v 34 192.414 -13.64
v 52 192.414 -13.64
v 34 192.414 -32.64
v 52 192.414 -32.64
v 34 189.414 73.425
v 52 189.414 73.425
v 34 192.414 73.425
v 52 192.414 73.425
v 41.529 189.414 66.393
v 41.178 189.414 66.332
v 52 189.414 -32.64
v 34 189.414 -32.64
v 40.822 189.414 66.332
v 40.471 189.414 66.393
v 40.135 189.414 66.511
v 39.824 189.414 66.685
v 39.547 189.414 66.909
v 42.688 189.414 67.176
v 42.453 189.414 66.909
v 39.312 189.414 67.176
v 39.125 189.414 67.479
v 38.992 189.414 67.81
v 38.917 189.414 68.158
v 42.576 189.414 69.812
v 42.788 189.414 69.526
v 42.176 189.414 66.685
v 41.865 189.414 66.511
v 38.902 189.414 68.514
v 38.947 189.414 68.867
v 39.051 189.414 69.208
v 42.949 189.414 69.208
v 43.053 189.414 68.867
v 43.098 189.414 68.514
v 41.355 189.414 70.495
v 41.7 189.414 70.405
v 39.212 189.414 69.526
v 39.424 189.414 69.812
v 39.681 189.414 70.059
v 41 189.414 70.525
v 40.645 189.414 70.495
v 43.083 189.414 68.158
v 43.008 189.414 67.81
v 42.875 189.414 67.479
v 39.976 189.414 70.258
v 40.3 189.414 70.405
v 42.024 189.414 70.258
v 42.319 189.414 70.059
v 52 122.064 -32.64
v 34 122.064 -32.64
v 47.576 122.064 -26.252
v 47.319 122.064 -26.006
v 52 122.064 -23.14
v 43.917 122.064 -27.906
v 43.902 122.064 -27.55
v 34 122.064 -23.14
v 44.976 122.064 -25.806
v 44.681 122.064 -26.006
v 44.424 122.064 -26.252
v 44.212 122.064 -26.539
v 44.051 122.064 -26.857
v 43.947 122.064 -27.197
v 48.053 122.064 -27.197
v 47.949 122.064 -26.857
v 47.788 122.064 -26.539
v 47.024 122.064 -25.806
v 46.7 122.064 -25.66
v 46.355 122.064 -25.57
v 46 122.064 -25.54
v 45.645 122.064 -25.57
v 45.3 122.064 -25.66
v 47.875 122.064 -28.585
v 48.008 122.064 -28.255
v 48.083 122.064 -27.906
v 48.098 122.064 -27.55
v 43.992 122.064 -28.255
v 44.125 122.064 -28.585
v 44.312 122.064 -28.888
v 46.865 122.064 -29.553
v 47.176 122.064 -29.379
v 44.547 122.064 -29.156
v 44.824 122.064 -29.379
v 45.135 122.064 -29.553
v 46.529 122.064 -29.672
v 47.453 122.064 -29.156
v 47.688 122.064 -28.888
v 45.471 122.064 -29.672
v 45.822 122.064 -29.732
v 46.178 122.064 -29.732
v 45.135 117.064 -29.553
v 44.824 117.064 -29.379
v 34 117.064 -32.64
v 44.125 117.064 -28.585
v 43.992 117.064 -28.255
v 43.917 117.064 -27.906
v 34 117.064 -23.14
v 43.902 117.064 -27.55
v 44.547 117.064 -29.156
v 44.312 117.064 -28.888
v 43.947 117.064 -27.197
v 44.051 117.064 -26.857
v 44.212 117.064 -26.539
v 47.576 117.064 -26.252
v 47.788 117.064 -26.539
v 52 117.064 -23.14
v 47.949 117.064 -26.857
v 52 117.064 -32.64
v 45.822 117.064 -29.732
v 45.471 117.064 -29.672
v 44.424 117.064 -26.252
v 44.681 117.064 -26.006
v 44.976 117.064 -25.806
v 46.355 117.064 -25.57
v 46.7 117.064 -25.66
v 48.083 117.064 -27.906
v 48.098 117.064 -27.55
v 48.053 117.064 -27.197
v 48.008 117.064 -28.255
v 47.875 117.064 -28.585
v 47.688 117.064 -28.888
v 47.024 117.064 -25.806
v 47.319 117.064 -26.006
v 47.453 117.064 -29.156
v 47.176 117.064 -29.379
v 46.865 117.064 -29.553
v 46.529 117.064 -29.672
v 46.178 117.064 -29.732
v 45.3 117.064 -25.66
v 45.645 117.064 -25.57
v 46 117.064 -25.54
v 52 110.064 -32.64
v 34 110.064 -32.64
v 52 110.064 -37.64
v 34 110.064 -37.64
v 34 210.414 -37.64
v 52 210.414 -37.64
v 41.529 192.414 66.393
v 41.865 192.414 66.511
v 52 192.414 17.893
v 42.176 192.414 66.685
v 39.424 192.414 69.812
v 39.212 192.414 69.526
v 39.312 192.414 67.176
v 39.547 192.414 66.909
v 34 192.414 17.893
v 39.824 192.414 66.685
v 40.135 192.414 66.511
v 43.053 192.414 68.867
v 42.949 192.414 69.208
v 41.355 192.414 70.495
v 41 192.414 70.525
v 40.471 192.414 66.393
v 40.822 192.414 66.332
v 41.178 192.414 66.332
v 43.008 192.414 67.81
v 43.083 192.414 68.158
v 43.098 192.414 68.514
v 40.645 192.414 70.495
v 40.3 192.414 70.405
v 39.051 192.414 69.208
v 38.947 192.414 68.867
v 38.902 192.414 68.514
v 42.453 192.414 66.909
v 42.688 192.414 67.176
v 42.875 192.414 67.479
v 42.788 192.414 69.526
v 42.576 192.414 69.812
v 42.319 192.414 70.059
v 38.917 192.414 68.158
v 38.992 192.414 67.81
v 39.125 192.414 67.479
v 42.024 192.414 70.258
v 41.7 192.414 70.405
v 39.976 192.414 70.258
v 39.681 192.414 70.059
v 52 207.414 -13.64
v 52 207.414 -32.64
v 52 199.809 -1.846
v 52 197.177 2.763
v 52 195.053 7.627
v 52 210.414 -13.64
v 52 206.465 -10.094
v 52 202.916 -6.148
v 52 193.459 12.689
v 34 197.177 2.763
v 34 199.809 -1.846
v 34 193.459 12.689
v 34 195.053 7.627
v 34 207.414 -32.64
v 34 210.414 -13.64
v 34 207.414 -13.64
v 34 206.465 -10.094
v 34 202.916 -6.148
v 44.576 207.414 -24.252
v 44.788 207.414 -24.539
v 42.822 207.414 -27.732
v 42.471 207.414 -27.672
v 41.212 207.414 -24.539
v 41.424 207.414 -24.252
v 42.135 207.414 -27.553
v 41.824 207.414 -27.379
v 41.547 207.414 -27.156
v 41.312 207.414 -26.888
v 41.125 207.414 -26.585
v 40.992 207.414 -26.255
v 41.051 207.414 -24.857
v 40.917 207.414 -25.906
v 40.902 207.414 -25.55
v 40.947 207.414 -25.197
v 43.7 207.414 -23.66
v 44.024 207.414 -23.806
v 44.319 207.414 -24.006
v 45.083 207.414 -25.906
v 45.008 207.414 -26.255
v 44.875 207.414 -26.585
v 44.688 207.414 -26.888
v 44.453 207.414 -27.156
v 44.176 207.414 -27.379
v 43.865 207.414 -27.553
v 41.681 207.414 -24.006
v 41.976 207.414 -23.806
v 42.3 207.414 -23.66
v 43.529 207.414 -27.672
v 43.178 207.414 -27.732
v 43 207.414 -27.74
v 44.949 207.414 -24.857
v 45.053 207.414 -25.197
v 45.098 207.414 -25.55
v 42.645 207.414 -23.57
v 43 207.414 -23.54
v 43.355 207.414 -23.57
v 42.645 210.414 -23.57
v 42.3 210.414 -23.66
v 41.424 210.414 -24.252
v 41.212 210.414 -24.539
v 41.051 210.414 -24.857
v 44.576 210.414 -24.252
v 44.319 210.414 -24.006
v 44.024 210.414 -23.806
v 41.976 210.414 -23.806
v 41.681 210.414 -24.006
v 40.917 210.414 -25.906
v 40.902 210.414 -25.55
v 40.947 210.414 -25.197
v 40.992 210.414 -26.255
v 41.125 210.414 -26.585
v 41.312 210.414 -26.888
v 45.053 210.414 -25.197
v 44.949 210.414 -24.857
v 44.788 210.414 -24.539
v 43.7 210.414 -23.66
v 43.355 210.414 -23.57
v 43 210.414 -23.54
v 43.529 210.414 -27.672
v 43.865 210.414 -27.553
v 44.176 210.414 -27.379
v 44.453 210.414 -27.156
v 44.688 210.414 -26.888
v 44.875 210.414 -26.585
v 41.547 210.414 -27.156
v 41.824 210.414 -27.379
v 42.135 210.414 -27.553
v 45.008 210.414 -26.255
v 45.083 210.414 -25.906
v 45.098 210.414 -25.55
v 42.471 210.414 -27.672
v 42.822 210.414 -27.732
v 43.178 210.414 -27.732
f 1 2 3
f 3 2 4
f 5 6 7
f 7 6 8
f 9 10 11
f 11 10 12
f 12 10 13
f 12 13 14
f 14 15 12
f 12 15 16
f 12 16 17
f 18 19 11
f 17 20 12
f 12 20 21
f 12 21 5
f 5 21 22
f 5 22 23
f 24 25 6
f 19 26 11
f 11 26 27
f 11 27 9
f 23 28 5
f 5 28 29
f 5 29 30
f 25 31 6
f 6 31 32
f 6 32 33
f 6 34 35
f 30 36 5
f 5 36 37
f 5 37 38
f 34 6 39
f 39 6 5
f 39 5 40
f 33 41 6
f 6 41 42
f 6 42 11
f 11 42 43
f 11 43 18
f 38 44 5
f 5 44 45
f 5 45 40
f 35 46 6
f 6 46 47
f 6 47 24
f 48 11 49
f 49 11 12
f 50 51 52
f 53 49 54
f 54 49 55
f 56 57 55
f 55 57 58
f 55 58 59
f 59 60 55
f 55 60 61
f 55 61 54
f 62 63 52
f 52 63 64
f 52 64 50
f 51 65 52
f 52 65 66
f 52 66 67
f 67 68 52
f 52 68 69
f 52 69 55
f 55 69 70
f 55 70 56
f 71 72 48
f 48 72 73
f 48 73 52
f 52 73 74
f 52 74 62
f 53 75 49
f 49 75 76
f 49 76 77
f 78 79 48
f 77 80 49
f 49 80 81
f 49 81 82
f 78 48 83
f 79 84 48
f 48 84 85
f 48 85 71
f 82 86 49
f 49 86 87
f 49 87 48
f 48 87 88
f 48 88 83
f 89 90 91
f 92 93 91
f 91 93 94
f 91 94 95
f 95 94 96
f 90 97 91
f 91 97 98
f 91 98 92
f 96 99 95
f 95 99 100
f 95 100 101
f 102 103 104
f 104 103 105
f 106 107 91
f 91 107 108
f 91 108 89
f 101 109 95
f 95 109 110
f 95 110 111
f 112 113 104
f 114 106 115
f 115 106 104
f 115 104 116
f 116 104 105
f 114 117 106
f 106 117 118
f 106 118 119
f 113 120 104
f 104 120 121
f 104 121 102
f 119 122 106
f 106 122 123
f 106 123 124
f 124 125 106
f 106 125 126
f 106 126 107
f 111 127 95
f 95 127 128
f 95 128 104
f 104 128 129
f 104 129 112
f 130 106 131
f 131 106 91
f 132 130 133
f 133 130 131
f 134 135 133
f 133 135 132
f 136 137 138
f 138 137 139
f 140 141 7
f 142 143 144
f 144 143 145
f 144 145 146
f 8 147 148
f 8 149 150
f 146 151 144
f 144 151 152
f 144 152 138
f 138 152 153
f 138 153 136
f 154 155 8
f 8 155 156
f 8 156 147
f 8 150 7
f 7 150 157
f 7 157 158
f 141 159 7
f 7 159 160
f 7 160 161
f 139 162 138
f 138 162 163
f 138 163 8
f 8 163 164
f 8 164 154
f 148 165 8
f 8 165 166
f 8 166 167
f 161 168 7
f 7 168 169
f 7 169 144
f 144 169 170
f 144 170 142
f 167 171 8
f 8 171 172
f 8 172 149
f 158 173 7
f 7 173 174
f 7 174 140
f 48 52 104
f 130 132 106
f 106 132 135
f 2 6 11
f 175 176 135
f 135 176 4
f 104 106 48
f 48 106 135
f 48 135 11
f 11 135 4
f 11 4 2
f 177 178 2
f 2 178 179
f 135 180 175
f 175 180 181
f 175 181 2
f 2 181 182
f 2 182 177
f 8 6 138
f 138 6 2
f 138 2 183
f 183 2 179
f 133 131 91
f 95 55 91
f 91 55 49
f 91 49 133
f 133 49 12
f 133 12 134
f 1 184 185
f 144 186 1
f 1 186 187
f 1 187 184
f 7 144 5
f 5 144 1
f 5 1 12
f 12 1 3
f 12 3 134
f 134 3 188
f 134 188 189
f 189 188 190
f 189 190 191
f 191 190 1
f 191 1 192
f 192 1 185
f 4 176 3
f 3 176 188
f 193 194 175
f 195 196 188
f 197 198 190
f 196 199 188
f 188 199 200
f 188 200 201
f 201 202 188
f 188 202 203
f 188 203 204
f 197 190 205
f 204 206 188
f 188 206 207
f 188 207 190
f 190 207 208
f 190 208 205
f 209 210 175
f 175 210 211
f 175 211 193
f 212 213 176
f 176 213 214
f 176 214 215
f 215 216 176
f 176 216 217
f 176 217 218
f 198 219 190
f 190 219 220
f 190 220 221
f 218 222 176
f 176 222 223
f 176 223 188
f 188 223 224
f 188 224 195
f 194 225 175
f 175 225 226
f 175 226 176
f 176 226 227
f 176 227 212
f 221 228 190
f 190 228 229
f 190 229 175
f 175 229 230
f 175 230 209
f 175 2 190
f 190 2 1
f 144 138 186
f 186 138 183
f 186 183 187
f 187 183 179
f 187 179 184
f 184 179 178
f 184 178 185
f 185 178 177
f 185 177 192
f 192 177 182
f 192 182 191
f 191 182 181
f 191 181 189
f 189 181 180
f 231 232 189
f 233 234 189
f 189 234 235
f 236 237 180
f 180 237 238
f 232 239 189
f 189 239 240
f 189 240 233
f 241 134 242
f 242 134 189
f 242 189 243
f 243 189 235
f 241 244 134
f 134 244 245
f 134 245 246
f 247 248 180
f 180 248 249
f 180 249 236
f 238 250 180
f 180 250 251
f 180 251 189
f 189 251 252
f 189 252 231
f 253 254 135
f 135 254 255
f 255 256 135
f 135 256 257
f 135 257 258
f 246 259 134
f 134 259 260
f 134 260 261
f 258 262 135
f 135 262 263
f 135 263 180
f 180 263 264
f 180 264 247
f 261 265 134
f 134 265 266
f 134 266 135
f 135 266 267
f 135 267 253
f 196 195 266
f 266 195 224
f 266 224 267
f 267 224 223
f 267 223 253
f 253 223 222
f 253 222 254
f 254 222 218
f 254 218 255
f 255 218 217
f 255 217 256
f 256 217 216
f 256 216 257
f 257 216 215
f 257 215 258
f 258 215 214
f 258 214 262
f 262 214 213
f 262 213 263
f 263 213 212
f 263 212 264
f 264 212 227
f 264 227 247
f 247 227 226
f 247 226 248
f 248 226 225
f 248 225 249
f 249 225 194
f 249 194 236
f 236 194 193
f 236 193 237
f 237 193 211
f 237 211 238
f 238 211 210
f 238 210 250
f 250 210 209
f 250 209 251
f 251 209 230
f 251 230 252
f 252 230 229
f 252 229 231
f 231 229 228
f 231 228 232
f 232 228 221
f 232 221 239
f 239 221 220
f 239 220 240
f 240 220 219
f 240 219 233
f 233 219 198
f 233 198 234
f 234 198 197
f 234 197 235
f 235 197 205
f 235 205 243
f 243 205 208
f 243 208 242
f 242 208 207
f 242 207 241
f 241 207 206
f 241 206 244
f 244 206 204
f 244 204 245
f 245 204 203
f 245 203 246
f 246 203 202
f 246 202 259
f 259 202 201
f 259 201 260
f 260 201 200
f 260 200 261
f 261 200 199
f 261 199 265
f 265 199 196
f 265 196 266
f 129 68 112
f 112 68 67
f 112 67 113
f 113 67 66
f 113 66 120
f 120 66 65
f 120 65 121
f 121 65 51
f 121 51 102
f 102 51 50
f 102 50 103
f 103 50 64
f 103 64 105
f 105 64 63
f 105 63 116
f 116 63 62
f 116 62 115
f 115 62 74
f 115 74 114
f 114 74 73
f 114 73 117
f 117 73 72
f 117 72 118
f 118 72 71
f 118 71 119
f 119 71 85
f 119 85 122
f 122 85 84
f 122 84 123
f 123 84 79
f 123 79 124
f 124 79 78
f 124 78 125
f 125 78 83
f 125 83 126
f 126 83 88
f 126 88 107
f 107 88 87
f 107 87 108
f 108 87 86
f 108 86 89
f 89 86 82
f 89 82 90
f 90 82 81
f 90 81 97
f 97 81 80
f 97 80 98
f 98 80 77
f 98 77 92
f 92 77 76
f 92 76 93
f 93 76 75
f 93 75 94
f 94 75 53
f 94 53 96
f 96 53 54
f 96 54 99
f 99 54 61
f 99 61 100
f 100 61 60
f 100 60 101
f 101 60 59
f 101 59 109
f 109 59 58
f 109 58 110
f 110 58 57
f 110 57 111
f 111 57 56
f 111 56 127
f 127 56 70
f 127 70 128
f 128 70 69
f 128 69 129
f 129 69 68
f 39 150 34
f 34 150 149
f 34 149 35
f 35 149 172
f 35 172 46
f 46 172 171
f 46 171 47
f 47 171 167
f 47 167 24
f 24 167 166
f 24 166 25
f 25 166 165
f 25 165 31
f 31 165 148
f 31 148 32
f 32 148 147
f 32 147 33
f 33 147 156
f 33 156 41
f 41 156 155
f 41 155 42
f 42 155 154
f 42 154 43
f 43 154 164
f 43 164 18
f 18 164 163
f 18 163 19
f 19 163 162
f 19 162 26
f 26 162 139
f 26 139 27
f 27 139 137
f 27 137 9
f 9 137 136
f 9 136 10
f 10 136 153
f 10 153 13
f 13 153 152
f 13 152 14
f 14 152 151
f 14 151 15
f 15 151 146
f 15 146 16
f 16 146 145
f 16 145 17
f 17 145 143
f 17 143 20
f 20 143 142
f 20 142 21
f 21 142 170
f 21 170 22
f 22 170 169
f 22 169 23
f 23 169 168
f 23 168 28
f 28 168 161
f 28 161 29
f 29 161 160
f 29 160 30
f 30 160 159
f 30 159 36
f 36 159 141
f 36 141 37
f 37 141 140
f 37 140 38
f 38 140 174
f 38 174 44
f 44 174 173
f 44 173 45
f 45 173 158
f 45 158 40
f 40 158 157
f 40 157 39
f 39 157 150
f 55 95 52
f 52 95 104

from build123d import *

# Parameters (mm, degrees)
SKETCH4_W           = 106.06440689
SKETCH4_H           = 3
SKETCH4_W_2         = 10
SKETCH4_H_2         = 5
BOSS_EXTRUDE1_DEPTH = 52
SKETCH5_R           = 2.1
CUT_EXTRUDE1_DEPTH  = 52
SKETCH6_R           = 2.1
CUT_EXTRUDE2_DEPTH  = 52
SKETCH7_W           = 16
SKETCH7_H           = 82.35034403
CUT_EXTRUDE4_DEPTH  = 124
BOSS_EXTRUDE2_DEPTH = 18
SKETCH9_R           = 2.1
CUT_EXTRUDE5_DEPTH  = 6
BOSS_EXTRUDE3_DEPTH = 18
SKETCH12_R          = 2.1
CUT_EXTRUDE7_DEPTH  = 11
SKETCH13_W          = 30.758926903
SKETCH13_H          = 118.81058029
CUT_EXTRUDE8_DEPTH  = 134
SKETCH14_W          = 18
SKETCH14_H          = 2
CUT_EXTRUDE9_DEPTH  = 10
BOSS_EXTRUDE4_START = -5
SKETCH15_W          = 18
SKETCH15_H          = 2
SKETCH15_R          = 2.1
BOSS_EXTRUDE4_DEPTH = 5
SKETCH16_R          = 2.1
CUT_EXTRUDE10_DEPTH = 68
SKETCH17_R          = 2.1
BOSS_EXTRUDE5_DEPTH = 3
SKETCH18_R          = 2.1
CUT_EXTRUDE11_DEPTH = 68
SKETCH19_W          = 18
SKETCH19_H          = 0.5
CUT_EXTRUDE12_DEPTH = 68
SKETCH20_W          = 7.887405645
SKETCH20_H          = 8
BOSS_EXTRUDE6_DEPTH = 5
SKETCH21_R          = 2.1
CUT_EXTRUDE13_DEPTH = 10


with BuildPart() as part:
    # Sketch4 → Boss-Extrude1 (new body)
    with BuildSketch(Plane(origin=(0, 0, 0), x_dir=(0, 0, -1), z_dir=(1, 0, 0))):
        with Locations((-20.39261819, 190.914352888)):
            Rectangle(SKETCH4_W, SKETCH4_H)
        Polygon((32.639585255, 189.414352888), (32.639585255, 122.064008858), (32.639585255, 117.064008858), (32.639585255, 110.064008858), (37.639585255, 110.064008858), (37.639585255, 192.414352888), (32.639585255, 192.414352888), align=None)
        with Locations((27.639585255, 119.564008858)):
            Rectangle(SKETCH4_W_2, SKETCH4_H_2)
    extrude(amount=BOSS_EXTRUDE1_DEPTH)

    # Sketch5 → Cut-Extrude1 (cut)
    with BuildSketch(Plane(origin=(0, 122.064008858, 0), x_dir=(1, 0, 0), z_dir=(0, 1, 0))):
        with Locations((6, 27.049585255)):
            Circle(SKETCH5_R)
        with Locations((46, 27.639585255)):
            Circle(SKETCH5_R)
    extrude(amount=-CUT_EXTRUDE1_DEPTH, mode=Mode.SUBTRACT)

    # Sketch6 → Cut-Extrude2 (cut)
    with BuildSketch(Plane(origin=(0, 192.414352888, 0), x_dir=(1, 0, 0), z_dir=(0, 1, 0))):
        with Locations((41, -68.424821635)):
            Circle(SKETCH6_R)
        with Locations((11, -68.424821635)):
            Circle(SKETCH6_R)
    extrude(amount=-CUT_EXTRUDE2_DEPTH, mode=Mode.SUBTRACT)

    # Sketch7 → Cut-Extrude4 (cut)
    with BuildSketch(Plane(origin=(0, 0, -37.639585255), x_dir=(-1, 0, 0), z_dir=(0, 0, -1))):
        with Locations((-26, 151.239180873)):
            Rectangle(SKETCH7_W, SKETCH7_H)
    extrude(amount=-CUT_EXTRUDE4_DEPTH, mode=Mode.SUBTRACT)

    # Sketch8 → Boss-Extrude2 (add)
    with BuildSketch(Plane.ZY):
        with BuildLine():
            Line((-37.639585255, 210.414352888), (-37.639585255, 192.414352888))
            Line((-37.639585255, 192.414352888), (-32.639585255, 192.414352888))
            Line((-32.639585255, 192.414352888), (-32.639585255, 207.414352888))
            Line((-32.639585255, 207.414352888), (-13.639585255, 207.414352888))
            Line((-13.639585255, 207.414352888), (-13.639585255, 192.414352888))
            Line((-13.639585255, 192.414352888), (17.89261819, 192.414352888))
            ThreePointArc((17.89261819, 192.414352888), (0.423706042, 198.431388178), (-13.639585255, 210.414352888))
            Line((-13.639585255, 210.414352888), (-37.639585255, 210.414352888))
        make_face()
    extrude(amount=-BOSS_EXTRUDE2_DEPTH)

    # Sketch9 → Cut-Extrude5 (cut)
    with BuildSketch(Plane(origin=(0, 210.414352888, 0), x_dir=(1, 0, 0), z_dir=(0, 1, 0))):
        with Locations((9, 25.639585255)):
            Circle(SKETCH9_R)
    extrude(amount=-CUT_EXTRUDE5_DEPTH, mode=Mode.SUBTRACT)

    # Sketch11 → Boss-Extrude3 (add)
    with BuildSketch(Plane(origin=(52, 0, 0), x_dir=(0, 0, -1), z_dir=(1, 0, 0))):
        with BuildLine():
            Line((32.639585255, 192.414352888), (37.639585255, 192.414352888))
            Line((37.639585255, 192.414352888), (37.639585255, 210.414352888))
            Line((37.639585255, 210.414352888), (13.639585255, 210.414352888))
            ThreePointArc((13.639585255, 210.414352888), (-0.423706042, 198.431388178), (-17.89261819, 192.414352888))
            Line((-17.89261819, 192.414352888), (13.639585255, 192.414352888))
            Line((13.639585255, 192.414352888), (13.639585255, 207.414352888))
            Line((13.639585255, 207.414352888), (32.639585255, 207.414352888))
            Line((32.639585255, 207.414352888), (32.639585255, 192.414352888))
        make_face()
    extrude(amount=-BOSS_EXTRUDE3_DEPTH)

    # Sketch12 → Cut-Extrude7 (cut)
    with BuildSketch(Plane(origin=(0, 210.414352888, 0), x_dir=(1, 0, 0), z_dir=(0, 1, 0))):
        with Locations((43, 25.639585255)):
            Circle(SKETCH12_R)
    extrude(amount=-CUT_EXTRUDE7_DEPTH, mode=Mode.SUBTRACT)

    # Sketch13 → Cut-Extrude8 (cut)
    with BuildSketch(Plane(origin=(0, 210.414352888, 0), x_dir=(1, 0, 0), z_dir=(0, 1, 0))):
        with Locations((9.143188102, -17.675085242)):
            Rectangle(SKETCH13_W, SKETCH13_H)
    extrude(amount=-CUT_EXTRUDE8_DEPTH, mode=Mode.SUBTRACT)

    # Sketch14 → Cut-Extrude9 (cut)
    with BuildSketch(Plane(origin=(0, 122.064008858, 0), x_dir=(1, 0, 0), z_dir=(0, 1, 0))):
        with Locations((43, 23.639585255)):
            Rectangle(SKETCH14_W, SKETCH14_H)
    extrude(amount=-CUT_EXTRUDE9_DEPTH, mode=Mode.SUBTRACT)

    # Sketch15 → Boss-Extrude4 (add)
    with BuildSketch(Plane(origin=(0, 122.064008858, 0), x_dir=(1, 0, 0), z_dir=(0, 1, 0)).offset(BOSS_EXTRUDE4_START)):
        with Locations((43, 23.639585255)):
            Rectangle(SKETCH15_W, SKETCH15_H)
        with Locations((46, 27.639585255)):
            Circle(SKETCH15_R)
    extrude(amount=BOSS_EXTRUDE4_DEPTH)

    # Sketch16 → Cut-Extrude10 (cut)
    with BuildSketch(Plane(origin=(0, 122.064008858, 0), x_dir=(1, 0, 0), z_dir=(0, 1, 0))):
        with Locations((46, 27.639585255)):
            Circle(SKETCH16_R)
    extrude(amount=-CUT_EXTRUDE10_DEPTH, mode=Mode.SUBTRACT)

    # Sketch17 → Boss-Extrude5 (add)
    with BuildSketch(Plane(origin=(0, 192.414352888, 0), x_dir=(1, 0, 0), z_dir=(0, 1, 0))):
        with Locations((41, -68.424821635)):
            Circle(SKETCH17_R)
    extrude(amount=-BOSS_EXTRUDE5_DEPTH)

    # Sketch18 → Cut-Extrude11 (cut)
    with BuildSketch(Plane(origin=(0, 192.414352888, 0), x_dir=(1, 0, 0), z_dir=(0, 1, 0))):
        with Locations((41, -68.424821635)):
            Circle(SKETCH18_R)
    extrude(amount=-CUT_EXTRUDE11_DEPTH, mode=Mode.SUBTRACT)

    # Sketch19 → Cut-Extrude12 (cut)
    with BuildSketch(Plane(origin=(0, 122.064008858, 0), x_dir=(1, 0, 0), z_dir=(0, 1, 0))):
        with Locations((43, 22.889585255)):
            Rectangle(SKETCH19_W, SKETCH19_H)
    extrude(amount=-CUT_EXTRUDE12_DEPTH, mode=Mode.SUBTRACT)

    # Sketch20 → Boss-Extrude6 (add)
    with BuildSketch(Plane(origin=(0, 122.064008858, 0), x_dir=(1, 0, 0), z_dir=(0, 1, 0))):
        with Locations((45.93127306, 28.865937897)):
            Rectangle(SKETCH20_W, SKETCH20_H)
    extrude(amount=-BOSS_EXTRUDE6_DEPTH)

    # Sketch21 → Cut-Extrude13 (cut)
    with BuildSketch(Plane(origin=(0, 122.064008858, 0), x_dir=(1, 0, 0), z_dir=(0, 1, 0))):
        with Locations((46, 27.639585255)):
            Circle(SKETCH21_R)
    extrude(amount=-CUT_EXTRUDE13_DEPTH, mode=Mode.SUBTRACT)


solid = part.part
